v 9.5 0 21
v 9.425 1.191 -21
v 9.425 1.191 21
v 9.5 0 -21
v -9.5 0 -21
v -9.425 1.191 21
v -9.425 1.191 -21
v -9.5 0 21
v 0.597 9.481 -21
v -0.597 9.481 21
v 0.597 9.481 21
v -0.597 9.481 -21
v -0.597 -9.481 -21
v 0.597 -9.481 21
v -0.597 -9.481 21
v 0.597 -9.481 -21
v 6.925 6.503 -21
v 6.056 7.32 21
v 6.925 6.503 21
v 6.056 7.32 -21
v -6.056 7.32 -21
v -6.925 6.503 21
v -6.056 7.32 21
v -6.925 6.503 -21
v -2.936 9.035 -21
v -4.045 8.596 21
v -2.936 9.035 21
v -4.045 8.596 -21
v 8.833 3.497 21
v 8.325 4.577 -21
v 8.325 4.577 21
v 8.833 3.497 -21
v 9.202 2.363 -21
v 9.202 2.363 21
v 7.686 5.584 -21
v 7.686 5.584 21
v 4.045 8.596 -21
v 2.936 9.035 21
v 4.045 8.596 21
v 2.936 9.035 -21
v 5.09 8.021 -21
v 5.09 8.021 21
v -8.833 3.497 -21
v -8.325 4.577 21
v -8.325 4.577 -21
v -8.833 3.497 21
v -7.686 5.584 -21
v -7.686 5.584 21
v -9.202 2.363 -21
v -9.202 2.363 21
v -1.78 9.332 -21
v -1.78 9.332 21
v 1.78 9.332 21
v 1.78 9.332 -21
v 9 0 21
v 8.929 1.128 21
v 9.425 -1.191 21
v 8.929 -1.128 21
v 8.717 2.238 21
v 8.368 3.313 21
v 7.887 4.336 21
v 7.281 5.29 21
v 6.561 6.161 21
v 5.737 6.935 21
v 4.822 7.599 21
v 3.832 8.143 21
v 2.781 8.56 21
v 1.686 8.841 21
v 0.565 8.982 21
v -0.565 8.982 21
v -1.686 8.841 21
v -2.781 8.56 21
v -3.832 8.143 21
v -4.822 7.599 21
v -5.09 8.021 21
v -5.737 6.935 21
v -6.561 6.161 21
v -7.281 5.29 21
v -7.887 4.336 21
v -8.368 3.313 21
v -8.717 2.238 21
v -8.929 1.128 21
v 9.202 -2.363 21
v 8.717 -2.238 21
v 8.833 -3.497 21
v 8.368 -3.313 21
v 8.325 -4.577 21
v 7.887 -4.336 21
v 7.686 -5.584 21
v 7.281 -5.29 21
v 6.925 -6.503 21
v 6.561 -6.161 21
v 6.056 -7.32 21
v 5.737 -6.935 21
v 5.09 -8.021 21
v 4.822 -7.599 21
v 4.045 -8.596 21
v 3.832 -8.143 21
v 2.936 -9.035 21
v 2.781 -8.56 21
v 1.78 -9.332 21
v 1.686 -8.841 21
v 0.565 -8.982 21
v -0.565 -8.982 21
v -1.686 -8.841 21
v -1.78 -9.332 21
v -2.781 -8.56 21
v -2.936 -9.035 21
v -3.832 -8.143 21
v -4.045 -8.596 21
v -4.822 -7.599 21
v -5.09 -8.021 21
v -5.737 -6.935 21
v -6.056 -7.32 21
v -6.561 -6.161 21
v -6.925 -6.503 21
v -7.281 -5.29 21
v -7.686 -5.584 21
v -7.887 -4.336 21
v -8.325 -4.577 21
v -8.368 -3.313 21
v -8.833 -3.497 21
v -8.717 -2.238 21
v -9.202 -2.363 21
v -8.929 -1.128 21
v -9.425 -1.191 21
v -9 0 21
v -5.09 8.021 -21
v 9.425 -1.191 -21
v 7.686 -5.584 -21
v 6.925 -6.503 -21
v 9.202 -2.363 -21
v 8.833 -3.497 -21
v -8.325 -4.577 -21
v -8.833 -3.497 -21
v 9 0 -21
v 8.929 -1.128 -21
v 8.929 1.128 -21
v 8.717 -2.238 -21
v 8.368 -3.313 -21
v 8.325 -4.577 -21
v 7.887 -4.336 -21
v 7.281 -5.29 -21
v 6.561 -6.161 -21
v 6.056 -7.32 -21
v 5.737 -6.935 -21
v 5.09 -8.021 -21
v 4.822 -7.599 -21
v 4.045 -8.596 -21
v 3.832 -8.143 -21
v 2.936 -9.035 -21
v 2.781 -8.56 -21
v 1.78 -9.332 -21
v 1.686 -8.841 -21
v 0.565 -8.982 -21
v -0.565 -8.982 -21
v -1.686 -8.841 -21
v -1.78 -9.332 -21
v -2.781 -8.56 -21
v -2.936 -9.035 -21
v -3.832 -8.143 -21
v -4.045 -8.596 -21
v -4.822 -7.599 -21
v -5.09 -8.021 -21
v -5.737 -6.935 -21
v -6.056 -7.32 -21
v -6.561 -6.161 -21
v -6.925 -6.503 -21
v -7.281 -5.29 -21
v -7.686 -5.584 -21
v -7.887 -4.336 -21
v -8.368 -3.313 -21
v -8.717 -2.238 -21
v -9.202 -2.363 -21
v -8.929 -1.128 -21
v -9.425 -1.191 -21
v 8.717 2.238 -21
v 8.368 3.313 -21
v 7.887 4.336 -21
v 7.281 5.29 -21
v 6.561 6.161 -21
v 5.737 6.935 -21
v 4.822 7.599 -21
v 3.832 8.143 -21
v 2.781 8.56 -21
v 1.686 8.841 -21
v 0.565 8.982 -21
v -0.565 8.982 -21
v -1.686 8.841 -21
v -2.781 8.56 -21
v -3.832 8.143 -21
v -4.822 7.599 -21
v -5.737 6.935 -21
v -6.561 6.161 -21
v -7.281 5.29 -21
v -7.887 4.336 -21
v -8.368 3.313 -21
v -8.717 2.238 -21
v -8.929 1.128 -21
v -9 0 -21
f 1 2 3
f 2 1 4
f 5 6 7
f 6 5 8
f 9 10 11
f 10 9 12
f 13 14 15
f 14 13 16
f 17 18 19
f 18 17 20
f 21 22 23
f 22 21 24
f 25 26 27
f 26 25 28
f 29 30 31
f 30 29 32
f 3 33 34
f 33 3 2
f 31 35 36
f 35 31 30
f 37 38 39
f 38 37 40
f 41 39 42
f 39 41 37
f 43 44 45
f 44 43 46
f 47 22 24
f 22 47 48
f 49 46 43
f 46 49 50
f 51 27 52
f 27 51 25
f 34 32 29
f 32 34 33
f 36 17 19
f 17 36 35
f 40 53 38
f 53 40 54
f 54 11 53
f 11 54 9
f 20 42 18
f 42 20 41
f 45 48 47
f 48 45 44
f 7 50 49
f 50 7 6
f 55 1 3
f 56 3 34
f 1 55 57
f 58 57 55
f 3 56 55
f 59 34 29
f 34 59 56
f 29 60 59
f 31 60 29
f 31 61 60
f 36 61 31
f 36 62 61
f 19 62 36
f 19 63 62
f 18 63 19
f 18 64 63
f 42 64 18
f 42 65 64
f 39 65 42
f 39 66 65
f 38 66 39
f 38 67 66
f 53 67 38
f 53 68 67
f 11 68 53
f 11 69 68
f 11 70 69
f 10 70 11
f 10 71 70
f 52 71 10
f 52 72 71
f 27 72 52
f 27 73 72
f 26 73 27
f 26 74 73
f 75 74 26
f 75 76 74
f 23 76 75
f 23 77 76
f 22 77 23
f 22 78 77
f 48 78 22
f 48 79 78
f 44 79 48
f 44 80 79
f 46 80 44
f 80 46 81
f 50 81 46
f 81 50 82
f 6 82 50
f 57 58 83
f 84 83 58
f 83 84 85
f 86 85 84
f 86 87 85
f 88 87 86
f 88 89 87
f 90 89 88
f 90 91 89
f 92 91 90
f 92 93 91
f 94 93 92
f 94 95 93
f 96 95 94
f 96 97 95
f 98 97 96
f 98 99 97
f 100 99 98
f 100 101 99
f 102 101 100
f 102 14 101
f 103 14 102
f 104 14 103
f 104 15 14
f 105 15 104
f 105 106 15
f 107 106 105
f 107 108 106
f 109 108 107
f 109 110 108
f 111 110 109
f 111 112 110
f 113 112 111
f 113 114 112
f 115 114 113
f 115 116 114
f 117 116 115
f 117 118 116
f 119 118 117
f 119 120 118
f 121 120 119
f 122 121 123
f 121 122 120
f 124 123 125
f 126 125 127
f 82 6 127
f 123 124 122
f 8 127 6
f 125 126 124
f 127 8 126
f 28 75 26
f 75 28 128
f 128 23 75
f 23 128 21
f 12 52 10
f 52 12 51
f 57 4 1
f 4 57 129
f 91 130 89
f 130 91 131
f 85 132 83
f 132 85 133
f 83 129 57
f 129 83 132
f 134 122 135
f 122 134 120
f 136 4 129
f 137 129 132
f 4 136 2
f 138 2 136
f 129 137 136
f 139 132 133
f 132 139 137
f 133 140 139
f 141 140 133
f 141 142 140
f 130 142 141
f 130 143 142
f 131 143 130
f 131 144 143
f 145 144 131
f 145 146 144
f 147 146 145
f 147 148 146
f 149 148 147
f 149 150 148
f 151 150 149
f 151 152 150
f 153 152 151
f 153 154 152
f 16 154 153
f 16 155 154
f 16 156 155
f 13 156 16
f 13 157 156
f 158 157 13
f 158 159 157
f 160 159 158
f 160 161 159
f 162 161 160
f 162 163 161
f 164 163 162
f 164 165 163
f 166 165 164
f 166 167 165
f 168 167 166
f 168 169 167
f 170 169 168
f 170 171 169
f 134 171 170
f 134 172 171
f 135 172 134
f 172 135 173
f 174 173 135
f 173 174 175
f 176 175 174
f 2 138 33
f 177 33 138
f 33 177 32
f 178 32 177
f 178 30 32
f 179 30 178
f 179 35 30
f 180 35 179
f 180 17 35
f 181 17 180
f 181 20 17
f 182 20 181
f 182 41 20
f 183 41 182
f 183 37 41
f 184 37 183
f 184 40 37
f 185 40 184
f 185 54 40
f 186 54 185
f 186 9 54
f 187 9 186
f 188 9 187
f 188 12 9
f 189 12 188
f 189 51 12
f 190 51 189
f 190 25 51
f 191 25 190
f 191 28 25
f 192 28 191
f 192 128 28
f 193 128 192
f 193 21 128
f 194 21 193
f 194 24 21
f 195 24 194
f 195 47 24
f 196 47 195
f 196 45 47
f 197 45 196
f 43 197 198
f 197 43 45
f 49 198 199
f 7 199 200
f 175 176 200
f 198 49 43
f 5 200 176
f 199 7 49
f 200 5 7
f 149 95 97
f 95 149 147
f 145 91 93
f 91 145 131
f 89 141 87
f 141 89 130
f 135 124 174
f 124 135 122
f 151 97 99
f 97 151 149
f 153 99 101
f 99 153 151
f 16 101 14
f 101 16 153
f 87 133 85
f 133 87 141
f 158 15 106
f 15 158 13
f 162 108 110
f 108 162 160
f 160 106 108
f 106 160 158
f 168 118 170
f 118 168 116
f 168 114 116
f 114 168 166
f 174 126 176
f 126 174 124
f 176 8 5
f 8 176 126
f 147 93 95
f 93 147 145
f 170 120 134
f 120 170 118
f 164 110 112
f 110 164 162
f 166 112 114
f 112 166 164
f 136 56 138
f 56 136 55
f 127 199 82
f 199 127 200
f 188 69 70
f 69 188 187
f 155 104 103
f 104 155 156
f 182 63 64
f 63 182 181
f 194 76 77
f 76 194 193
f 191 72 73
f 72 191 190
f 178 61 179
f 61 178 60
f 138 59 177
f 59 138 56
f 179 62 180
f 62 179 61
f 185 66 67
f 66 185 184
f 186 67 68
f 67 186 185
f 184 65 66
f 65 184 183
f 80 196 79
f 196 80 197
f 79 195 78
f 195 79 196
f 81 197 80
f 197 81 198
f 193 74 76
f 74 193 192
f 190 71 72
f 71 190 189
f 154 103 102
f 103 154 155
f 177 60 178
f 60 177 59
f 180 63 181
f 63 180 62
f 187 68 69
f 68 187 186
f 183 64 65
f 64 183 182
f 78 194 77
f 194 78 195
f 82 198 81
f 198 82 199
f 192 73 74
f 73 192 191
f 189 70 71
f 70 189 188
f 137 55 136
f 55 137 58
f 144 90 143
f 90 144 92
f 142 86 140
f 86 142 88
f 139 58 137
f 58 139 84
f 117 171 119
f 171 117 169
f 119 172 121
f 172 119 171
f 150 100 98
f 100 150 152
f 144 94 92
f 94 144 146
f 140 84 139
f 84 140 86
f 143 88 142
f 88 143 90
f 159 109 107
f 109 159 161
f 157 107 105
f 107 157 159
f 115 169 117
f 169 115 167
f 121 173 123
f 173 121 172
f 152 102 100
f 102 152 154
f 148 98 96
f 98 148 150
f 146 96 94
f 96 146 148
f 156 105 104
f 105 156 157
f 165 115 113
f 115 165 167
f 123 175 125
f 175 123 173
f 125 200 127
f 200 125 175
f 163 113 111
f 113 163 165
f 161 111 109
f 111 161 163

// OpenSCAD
$fn = 50;


difference() {
	union() {
		translate(v = [0, 0, -21.0000000000]) {
			cylinder(h = 42, r = 9.5000000000);
		}
	}
	union() {
		translate(v = [0, 0, -100.0000000000]) {
			cylinder(h = 200, r = 9);
		}
	}
}
